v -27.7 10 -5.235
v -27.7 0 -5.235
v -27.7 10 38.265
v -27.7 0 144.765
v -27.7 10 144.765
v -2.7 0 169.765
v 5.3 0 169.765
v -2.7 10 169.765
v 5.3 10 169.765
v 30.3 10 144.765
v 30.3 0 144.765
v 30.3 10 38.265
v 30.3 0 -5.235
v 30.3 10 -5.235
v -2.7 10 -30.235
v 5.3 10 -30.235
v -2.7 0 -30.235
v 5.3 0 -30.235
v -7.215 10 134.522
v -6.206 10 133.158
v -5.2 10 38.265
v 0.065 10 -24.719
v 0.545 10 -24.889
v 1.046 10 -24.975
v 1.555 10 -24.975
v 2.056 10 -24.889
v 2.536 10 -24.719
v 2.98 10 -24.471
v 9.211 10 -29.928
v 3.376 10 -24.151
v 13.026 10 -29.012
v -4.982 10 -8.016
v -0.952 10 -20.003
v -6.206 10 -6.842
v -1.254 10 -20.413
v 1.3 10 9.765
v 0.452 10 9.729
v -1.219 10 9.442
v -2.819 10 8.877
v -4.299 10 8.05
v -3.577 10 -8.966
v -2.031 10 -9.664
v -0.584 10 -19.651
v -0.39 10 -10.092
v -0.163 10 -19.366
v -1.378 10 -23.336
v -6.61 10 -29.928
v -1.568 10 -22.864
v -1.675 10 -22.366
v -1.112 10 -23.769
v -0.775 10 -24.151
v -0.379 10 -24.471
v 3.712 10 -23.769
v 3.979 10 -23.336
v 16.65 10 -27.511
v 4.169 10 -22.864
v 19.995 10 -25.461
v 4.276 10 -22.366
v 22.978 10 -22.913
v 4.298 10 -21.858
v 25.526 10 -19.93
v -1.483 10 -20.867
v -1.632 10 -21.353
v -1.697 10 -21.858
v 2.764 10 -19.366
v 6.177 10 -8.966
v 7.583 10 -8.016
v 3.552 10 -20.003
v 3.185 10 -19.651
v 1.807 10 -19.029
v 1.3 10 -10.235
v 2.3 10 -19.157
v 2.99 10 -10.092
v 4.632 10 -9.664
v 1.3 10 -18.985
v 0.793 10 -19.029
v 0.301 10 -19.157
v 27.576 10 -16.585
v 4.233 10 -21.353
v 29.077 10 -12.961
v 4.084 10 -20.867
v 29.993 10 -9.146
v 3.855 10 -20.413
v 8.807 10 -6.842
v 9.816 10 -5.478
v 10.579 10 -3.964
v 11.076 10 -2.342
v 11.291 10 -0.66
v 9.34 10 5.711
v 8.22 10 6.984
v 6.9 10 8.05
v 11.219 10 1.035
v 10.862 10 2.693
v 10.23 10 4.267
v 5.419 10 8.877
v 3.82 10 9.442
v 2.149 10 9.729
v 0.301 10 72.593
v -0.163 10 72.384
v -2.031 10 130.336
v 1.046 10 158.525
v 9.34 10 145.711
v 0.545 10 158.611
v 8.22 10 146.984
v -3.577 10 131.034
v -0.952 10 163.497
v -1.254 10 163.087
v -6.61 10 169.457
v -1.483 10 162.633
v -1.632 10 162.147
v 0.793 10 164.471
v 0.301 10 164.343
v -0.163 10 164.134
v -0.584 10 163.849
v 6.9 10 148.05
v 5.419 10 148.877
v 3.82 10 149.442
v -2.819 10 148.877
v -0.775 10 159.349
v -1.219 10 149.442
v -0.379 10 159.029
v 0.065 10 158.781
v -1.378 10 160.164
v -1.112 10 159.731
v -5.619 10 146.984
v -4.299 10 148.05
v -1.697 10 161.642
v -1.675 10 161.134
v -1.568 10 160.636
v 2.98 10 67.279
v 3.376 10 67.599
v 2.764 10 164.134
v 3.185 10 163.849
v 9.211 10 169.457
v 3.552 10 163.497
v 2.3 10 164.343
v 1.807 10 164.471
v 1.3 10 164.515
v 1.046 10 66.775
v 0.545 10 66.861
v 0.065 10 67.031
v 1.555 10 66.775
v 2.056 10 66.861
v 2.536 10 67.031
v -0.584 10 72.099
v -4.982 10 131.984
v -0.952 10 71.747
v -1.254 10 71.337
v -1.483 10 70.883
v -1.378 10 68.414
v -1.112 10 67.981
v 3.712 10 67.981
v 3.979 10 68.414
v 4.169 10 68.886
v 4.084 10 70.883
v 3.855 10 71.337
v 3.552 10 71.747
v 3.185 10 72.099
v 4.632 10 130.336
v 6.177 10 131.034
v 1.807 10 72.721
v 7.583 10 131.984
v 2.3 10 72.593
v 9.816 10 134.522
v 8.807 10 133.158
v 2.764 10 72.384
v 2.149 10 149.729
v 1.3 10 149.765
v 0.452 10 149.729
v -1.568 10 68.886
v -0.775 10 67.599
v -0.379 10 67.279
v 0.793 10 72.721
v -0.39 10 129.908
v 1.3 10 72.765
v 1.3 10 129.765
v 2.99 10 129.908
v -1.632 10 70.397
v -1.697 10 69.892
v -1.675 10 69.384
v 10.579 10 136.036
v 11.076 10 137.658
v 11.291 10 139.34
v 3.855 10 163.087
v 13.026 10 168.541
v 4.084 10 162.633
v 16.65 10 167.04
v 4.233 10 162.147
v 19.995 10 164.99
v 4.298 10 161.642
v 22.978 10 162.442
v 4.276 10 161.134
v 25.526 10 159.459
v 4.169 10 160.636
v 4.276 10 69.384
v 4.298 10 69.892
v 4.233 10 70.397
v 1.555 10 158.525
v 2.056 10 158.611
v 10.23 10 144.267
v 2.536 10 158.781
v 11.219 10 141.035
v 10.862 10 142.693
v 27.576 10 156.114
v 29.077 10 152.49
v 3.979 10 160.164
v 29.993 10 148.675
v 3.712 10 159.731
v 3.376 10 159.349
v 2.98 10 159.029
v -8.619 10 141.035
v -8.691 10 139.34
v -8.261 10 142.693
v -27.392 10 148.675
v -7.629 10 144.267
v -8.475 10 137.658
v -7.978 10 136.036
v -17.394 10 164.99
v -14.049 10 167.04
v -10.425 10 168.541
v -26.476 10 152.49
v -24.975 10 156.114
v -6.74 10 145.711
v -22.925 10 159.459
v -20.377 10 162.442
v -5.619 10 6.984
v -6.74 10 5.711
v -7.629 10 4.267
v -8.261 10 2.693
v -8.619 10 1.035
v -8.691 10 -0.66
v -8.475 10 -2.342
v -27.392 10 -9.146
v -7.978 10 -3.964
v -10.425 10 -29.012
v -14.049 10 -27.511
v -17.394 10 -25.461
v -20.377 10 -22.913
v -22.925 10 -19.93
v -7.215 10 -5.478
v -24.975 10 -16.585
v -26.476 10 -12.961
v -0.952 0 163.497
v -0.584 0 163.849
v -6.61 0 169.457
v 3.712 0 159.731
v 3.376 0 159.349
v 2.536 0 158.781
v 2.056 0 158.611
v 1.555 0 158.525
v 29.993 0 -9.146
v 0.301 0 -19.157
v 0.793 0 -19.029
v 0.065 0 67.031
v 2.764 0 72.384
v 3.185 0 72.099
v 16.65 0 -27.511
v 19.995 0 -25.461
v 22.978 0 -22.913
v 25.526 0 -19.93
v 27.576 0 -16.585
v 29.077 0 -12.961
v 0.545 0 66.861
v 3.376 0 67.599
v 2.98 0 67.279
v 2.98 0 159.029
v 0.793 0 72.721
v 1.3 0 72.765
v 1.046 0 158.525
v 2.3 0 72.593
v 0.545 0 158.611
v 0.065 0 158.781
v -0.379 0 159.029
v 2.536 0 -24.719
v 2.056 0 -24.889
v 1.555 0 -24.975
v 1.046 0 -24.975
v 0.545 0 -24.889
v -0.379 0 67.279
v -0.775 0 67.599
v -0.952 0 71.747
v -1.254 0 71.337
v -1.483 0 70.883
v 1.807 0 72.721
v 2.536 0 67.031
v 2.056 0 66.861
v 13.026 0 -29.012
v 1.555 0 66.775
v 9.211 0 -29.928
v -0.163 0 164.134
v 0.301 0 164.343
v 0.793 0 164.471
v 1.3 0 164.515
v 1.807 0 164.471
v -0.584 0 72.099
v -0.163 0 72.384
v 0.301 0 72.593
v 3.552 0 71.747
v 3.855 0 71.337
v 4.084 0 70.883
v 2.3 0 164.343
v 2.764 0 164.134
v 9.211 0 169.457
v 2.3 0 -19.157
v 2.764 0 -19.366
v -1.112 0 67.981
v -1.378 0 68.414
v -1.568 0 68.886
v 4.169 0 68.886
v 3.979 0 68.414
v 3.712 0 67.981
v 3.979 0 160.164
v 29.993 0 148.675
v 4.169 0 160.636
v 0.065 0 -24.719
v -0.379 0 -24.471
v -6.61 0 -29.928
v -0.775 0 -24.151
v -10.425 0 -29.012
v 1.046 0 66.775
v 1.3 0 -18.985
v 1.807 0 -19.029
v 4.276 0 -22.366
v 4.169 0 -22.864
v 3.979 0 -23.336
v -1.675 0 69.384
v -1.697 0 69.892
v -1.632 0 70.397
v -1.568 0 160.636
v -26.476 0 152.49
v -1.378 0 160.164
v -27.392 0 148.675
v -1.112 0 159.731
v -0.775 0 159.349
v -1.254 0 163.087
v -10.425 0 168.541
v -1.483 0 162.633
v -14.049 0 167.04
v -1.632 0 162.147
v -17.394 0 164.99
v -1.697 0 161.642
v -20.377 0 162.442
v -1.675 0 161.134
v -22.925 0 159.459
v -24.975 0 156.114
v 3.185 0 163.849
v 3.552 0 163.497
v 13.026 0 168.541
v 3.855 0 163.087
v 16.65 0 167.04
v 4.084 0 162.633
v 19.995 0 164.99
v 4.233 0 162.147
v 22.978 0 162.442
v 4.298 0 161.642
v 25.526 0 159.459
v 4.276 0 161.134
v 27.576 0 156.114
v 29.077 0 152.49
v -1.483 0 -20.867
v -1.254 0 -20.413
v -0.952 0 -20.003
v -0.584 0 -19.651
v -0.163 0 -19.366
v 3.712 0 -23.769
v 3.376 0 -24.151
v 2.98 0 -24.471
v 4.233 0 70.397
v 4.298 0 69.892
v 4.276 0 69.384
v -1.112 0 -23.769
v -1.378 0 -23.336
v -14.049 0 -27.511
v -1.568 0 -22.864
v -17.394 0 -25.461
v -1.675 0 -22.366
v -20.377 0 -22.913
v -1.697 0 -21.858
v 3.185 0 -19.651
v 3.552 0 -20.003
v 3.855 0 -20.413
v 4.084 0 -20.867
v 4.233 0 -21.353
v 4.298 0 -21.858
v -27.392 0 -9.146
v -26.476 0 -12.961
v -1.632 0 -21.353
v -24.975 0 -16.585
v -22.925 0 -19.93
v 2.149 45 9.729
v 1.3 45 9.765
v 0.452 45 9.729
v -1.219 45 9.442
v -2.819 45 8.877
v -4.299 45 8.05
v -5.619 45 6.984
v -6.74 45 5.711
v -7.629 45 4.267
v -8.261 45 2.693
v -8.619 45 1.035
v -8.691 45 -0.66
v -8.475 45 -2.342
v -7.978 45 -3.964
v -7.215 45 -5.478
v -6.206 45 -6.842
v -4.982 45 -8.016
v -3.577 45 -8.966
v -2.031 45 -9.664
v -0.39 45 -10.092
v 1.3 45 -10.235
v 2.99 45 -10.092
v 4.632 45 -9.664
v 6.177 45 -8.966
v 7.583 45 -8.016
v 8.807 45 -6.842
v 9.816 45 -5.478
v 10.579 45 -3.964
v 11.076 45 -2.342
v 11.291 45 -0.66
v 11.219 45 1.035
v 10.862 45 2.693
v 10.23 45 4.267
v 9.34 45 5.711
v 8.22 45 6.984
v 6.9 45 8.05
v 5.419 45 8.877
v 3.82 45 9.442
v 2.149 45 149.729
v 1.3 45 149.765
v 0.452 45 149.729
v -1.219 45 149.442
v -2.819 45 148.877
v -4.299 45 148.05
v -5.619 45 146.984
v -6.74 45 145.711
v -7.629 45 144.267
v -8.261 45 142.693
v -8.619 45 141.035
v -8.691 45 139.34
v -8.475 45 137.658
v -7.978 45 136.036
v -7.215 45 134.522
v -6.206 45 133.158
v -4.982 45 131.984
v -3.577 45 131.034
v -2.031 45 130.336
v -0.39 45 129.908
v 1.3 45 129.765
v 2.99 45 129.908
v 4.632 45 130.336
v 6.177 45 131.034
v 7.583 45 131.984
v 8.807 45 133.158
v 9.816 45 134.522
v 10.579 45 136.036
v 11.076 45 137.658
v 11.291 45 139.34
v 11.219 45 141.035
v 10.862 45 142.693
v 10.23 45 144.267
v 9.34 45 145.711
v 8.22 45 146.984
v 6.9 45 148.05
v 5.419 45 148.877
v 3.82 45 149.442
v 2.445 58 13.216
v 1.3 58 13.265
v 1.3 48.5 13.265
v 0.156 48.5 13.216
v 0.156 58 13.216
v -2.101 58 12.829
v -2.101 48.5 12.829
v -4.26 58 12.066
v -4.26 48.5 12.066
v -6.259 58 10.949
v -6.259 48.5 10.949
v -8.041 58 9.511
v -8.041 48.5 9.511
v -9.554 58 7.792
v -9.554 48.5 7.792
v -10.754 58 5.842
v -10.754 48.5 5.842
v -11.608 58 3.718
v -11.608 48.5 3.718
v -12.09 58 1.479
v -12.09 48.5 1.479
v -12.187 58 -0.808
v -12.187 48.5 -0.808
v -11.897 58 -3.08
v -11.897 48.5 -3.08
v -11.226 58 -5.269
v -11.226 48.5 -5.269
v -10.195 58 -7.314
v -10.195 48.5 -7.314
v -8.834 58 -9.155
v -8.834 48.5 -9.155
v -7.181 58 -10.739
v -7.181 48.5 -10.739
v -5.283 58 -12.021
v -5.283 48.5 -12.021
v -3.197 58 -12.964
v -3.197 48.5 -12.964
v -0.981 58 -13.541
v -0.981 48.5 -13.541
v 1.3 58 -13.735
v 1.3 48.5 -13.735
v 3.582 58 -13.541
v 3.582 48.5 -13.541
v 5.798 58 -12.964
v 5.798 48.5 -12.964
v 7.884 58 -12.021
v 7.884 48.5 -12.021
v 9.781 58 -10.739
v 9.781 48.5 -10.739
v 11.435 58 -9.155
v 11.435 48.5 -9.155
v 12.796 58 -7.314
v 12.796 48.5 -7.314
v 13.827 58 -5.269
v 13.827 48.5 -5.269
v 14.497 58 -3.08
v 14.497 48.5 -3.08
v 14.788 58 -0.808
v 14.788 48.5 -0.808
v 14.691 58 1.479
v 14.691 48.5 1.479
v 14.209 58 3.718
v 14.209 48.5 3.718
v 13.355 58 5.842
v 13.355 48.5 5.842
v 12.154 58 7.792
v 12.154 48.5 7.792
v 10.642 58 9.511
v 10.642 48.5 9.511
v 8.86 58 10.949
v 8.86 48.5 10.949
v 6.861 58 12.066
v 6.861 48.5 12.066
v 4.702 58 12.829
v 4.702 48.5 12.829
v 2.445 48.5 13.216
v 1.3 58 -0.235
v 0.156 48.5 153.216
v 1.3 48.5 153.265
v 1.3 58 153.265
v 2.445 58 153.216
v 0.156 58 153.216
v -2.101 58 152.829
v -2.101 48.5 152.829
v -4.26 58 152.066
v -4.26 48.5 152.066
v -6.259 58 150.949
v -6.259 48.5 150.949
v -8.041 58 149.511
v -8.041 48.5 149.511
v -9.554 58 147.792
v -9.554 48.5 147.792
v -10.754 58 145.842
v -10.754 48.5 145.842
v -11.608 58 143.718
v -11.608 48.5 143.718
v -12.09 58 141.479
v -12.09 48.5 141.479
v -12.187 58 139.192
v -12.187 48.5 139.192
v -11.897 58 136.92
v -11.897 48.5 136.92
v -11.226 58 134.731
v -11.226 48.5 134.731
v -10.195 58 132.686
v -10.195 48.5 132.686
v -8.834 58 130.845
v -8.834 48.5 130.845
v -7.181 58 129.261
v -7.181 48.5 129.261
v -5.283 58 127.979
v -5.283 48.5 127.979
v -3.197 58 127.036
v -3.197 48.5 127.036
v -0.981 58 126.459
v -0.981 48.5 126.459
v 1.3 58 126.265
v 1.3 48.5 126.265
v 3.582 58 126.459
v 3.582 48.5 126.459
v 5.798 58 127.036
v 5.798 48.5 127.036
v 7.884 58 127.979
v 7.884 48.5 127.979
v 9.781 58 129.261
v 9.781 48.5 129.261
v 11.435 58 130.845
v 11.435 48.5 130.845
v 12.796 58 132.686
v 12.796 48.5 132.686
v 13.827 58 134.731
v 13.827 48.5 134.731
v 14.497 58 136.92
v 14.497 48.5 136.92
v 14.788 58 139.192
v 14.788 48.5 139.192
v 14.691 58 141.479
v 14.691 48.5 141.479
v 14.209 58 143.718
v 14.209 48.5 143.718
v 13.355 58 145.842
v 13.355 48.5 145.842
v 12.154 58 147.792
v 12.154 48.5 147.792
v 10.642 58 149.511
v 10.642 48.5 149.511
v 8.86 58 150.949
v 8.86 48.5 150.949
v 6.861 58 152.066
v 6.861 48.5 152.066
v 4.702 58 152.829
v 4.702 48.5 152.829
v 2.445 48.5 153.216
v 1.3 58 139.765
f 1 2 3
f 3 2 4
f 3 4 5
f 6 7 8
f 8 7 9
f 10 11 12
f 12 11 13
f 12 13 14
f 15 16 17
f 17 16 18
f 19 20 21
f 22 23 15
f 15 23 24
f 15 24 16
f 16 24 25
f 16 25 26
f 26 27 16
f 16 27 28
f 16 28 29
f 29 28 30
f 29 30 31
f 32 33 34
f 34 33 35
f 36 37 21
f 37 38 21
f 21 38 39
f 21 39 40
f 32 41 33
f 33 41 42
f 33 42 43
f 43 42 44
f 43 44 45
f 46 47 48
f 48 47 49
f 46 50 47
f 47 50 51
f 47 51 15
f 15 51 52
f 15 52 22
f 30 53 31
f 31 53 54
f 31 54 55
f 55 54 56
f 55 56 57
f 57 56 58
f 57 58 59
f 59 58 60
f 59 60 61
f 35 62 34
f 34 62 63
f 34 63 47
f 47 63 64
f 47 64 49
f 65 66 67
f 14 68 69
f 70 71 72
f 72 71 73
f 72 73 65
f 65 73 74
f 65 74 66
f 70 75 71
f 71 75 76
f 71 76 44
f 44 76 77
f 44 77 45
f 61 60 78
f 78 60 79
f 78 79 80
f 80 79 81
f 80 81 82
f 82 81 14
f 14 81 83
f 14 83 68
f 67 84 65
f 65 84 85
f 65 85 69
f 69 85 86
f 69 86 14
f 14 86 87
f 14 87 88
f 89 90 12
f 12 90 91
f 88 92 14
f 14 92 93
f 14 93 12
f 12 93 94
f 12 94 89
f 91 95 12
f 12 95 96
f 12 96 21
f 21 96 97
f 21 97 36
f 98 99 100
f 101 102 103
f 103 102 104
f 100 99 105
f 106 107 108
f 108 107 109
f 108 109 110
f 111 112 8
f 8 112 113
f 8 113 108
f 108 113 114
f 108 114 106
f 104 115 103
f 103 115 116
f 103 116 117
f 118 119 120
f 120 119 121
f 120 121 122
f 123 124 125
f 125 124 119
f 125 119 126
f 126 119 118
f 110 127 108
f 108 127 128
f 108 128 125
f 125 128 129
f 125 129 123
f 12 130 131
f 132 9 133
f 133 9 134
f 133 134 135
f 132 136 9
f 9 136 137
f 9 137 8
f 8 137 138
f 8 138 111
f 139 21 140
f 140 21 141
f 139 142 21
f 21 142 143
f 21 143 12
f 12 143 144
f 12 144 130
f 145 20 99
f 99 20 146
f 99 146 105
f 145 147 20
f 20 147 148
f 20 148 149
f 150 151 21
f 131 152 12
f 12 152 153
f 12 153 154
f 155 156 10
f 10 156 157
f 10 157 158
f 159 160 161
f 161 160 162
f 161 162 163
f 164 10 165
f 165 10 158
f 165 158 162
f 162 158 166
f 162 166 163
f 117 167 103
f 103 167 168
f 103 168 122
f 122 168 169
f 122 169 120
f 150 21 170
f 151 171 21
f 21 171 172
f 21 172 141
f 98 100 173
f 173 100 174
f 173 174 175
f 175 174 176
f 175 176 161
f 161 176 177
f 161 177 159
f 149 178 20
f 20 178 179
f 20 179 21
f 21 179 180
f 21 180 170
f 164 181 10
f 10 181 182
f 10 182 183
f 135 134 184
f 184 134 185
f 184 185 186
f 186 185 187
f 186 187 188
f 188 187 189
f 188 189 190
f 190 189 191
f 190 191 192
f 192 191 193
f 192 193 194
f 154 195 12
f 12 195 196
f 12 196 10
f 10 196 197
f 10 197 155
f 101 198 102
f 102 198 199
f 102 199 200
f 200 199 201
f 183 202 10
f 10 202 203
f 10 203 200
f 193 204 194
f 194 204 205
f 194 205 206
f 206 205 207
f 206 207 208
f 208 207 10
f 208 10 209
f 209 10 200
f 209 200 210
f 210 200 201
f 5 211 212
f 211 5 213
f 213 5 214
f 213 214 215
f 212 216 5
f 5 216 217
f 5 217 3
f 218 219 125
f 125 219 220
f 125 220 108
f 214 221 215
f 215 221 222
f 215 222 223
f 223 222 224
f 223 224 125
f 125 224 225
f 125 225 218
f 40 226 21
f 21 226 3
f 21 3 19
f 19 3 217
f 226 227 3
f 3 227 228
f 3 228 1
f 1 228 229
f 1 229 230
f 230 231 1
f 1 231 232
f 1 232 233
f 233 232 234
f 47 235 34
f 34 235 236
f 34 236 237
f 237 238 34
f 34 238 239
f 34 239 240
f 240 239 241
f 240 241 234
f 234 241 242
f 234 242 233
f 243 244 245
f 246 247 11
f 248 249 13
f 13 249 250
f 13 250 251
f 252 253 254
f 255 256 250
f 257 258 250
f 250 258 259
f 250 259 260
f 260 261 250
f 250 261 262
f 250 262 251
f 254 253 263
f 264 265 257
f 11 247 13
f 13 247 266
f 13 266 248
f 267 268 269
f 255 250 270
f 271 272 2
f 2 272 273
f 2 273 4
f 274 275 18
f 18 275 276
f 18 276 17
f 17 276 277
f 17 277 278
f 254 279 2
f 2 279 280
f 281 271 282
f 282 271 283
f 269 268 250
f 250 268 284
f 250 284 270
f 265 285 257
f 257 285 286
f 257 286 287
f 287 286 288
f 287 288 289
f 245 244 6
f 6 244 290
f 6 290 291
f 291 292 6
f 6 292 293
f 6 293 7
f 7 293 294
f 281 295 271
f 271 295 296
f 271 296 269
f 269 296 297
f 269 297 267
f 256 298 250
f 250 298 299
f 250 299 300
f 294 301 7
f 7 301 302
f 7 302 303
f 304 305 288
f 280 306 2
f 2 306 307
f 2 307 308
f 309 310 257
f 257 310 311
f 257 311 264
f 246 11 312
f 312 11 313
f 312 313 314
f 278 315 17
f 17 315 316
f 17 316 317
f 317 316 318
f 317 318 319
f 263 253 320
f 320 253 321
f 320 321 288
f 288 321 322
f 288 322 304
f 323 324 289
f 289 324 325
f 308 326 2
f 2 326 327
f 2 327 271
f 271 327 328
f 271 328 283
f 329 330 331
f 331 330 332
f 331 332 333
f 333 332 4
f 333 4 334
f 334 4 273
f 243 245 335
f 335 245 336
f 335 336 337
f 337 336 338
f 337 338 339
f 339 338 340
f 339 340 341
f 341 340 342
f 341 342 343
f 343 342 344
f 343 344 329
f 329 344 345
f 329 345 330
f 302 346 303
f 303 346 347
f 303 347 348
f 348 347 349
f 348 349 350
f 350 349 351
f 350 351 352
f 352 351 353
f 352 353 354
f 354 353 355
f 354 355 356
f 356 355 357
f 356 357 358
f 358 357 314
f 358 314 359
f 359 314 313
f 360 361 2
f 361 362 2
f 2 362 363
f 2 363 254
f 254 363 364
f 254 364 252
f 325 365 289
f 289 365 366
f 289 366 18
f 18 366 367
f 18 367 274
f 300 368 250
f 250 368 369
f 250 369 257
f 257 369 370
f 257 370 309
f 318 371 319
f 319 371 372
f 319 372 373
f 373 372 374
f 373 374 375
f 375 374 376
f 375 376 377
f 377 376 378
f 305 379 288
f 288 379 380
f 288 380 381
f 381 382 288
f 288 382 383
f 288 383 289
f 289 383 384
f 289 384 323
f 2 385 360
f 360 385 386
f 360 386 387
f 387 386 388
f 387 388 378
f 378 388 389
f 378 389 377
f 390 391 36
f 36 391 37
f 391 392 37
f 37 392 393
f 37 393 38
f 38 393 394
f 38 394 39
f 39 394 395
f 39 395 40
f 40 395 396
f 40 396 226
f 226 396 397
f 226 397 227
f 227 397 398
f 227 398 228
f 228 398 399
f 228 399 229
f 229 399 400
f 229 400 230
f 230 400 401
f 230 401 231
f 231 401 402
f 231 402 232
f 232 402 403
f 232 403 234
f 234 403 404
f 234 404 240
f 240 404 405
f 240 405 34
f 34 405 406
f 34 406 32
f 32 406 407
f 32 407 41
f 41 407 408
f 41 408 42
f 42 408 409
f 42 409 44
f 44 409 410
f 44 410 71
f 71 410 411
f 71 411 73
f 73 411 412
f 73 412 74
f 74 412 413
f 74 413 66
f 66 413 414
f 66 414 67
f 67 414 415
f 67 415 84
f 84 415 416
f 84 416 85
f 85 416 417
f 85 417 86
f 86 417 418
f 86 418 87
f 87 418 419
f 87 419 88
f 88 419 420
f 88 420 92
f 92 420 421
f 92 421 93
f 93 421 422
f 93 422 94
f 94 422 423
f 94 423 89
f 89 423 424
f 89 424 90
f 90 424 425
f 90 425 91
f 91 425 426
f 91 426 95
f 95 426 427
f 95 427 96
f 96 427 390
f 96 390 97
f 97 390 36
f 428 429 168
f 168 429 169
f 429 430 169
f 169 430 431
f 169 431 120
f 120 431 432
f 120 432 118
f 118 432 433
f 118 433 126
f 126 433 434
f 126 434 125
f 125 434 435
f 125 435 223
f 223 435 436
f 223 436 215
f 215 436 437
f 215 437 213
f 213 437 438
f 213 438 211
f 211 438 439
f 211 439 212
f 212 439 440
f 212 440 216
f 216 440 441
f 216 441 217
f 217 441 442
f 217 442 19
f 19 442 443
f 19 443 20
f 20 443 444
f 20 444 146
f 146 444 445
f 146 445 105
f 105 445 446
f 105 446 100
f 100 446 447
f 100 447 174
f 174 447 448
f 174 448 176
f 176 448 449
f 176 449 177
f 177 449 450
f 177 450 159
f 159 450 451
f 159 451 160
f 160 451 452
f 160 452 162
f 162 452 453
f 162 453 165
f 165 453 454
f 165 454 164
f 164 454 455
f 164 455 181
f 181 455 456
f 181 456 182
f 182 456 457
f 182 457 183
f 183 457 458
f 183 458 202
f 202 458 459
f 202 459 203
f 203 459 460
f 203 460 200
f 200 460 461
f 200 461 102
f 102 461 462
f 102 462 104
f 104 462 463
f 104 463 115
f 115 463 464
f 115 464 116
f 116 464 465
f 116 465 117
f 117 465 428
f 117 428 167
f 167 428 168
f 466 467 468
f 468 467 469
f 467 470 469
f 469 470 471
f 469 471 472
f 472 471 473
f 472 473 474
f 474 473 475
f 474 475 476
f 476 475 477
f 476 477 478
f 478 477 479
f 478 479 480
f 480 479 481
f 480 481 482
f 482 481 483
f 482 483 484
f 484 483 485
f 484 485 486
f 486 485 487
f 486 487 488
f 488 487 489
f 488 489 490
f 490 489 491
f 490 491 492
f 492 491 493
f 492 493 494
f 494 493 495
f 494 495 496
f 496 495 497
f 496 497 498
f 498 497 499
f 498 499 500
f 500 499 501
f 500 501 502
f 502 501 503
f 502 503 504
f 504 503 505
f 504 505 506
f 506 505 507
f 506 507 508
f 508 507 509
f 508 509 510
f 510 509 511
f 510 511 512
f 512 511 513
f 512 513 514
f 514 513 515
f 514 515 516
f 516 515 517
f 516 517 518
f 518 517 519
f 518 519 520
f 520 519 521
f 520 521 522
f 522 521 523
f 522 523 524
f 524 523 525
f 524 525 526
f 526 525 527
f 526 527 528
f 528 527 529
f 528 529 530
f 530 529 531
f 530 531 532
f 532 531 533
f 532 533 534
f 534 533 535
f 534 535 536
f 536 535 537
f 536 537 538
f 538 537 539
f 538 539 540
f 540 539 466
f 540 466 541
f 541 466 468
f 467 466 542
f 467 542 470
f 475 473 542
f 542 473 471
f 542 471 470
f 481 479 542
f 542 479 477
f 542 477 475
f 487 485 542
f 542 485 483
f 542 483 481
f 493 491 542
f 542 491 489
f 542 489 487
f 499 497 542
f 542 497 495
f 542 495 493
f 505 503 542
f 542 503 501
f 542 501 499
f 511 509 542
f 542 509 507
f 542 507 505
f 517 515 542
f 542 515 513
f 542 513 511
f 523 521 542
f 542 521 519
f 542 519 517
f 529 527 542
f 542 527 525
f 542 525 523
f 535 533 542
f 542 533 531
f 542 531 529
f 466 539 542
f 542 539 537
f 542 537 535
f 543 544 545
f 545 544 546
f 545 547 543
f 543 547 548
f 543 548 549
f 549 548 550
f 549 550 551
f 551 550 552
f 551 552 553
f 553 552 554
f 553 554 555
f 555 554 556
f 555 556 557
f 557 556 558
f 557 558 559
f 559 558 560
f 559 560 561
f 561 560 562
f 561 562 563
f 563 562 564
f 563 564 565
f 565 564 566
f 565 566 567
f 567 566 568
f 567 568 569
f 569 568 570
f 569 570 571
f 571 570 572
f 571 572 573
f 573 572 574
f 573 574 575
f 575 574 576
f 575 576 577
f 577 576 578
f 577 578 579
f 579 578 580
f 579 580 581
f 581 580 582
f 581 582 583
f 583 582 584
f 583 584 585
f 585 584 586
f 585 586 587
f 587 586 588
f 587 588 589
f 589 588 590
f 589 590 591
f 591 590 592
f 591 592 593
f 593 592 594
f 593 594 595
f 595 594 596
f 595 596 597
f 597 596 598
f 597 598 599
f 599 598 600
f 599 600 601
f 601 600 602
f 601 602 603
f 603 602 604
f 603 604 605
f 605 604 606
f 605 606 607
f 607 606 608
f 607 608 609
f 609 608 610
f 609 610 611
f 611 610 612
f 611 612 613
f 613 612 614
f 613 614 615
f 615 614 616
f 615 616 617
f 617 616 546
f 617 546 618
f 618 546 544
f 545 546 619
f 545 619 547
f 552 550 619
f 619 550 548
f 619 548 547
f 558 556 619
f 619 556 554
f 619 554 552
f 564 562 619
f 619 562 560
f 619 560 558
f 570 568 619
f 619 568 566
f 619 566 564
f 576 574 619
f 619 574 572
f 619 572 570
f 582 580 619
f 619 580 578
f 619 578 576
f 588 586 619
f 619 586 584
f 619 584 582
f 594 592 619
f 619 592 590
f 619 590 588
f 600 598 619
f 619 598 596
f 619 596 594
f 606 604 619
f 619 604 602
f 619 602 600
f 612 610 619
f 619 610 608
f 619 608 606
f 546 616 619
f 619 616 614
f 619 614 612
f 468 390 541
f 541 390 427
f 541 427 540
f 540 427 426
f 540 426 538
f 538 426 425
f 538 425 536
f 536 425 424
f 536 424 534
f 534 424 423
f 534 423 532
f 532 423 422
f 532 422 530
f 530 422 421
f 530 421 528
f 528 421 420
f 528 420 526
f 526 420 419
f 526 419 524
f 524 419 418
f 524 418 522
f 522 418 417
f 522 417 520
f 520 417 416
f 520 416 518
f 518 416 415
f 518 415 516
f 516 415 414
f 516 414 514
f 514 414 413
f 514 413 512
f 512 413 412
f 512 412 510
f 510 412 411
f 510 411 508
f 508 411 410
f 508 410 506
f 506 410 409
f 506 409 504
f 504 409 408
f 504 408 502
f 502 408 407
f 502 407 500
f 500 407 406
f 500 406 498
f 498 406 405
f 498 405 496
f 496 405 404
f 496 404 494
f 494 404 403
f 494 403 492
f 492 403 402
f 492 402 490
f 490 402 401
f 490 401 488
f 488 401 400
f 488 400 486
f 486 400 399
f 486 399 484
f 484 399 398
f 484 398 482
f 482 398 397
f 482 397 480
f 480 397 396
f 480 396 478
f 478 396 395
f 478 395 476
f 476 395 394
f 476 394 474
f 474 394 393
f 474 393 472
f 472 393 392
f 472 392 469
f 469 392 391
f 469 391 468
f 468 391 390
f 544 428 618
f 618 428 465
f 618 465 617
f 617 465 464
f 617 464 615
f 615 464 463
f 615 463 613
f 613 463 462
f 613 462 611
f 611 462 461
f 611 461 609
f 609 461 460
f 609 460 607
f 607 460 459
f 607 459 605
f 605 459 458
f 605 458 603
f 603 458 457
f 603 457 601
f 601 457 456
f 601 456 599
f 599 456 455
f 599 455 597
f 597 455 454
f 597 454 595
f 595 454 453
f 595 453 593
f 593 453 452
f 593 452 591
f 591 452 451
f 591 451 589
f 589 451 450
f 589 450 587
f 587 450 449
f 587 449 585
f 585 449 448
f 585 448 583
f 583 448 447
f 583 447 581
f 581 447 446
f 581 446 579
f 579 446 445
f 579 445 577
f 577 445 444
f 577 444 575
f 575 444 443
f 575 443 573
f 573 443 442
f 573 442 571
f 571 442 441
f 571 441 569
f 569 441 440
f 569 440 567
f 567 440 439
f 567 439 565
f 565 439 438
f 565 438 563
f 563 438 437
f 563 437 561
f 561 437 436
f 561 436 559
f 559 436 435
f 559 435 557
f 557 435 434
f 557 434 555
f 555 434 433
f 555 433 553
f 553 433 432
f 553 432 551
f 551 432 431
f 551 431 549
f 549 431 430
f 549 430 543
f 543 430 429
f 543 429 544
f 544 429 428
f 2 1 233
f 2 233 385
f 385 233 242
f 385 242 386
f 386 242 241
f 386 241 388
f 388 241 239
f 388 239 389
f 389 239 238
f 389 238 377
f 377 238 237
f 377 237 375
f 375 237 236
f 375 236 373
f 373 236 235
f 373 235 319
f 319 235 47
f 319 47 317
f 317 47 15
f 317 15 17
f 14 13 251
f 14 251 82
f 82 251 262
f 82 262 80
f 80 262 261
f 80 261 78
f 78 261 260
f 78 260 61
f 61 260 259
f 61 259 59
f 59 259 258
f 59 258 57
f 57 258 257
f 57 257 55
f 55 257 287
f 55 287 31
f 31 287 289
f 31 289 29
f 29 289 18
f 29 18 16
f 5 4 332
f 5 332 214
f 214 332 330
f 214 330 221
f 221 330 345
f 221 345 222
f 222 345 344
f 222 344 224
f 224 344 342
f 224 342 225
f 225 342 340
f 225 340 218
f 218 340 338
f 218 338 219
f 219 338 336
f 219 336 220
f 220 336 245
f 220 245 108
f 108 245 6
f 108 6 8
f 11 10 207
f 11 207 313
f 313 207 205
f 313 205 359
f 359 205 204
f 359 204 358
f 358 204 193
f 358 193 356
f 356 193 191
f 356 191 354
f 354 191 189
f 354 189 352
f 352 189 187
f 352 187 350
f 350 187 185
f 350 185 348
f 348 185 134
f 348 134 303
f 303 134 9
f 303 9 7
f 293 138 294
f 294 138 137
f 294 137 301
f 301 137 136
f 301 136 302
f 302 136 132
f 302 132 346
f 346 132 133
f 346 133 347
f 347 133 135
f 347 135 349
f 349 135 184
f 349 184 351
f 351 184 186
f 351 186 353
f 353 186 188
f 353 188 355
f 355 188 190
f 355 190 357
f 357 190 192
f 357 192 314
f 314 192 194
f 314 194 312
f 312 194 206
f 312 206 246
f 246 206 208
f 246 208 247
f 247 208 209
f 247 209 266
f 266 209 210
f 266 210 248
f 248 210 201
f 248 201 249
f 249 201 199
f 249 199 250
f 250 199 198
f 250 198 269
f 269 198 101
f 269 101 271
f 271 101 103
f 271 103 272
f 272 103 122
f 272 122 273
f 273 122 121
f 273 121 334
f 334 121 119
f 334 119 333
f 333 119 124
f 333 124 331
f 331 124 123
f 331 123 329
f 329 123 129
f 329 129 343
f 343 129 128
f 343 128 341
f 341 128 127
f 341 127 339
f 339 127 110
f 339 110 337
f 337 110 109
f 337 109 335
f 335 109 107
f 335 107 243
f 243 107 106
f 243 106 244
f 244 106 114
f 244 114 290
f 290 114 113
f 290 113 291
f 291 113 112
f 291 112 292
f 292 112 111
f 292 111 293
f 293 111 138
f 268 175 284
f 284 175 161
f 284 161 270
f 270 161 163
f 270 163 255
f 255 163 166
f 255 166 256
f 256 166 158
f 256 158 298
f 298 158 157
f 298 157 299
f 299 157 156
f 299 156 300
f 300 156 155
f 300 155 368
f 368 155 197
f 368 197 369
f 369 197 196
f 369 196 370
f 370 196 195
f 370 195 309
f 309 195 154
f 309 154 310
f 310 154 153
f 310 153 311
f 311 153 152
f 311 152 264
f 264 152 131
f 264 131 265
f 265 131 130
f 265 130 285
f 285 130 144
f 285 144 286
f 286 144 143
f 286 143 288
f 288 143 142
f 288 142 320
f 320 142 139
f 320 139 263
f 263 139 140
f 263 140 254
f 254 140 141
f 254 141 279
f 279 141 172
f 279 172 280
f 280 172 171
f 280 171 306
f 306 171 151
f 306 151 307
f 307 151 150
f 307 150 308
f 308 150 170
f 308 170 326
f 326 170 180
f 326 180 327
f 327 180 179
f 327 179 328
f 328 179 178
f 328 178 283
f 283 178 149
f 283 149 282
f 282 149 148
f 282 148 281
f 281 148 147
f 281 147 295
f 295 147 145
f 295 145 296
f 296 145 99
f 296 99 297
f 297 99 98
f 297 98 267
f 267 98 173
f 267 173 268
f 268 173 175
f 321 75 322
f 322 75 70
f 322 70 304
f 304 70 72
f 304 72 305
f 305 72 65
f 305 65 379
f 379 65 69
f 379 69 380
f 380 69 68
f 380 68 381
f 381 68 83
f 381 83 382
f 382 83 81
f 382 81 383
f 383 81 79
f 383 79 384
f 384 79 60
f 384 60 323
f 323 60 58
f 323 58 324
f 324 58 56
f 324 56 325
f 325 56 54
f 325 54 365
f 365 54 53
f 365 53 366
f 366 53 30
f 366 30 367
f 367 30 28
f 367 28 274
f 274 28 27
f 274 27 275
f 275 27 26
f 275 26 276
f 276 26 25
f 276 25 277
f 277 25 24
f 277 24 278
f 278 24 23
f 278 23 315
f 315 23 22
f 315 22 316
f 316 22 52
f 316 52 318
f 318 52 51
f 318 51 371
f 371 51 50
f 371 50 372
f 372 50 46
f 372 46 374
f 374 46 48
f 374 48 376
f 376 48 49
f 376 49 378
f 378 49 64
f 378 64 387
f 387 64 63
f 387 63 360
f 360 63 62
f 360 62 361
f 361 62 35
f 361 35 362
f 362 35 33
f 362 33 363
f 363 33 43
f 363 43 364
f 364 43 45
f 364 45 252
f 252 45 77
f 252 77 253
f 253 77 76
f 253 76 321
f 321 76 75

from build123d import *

# Parameters (mm, degrees)
BOSS_EXTRUDE1_DEPTH = 10
BOSS_EXTRUDE2_DEPTH = 50
SKETCH3_R           = 13.5
BOSS_EXTRUDE3_DEPTH = 8
CHAMFER2_SIZE       = 5
FILLET1_R           = 25
CUT_EXTRUDE1_DEPTH  = 10


with BuildPart() as part:
    # Sketch1 → Boss-Extrude1 (new body)
    with BuildSketch(Plane(origin=(0, 0, 0), x_dir=(1, 0, 0), z_dir=(0, 1, 0))):
        with BuildLine():
            Line((30.30044843, 30.235426009), (1.30044843, 30.235426009))
            Line((1.30044843, 30.235426009), (1.30044843, 10.235426009))
            ThreePointArc((1.30044843, 10.235426009), (8.371516242, 7.306493821), (11.30044843, 0.235426009))
            ThreePointArc((11.30044843, 0.235426009), (8.371516242, -6.835641803), (1.30044843, -9.764573991))
            Line((1.30044843, -9.764573991), (1.30044843, -129.764573991))
            ThreePointArc((1.30044843, -129.764573991), (8.371516242, -132.693506179), (11.30044843, -139.764573991))
            ThreePointArc((11.30044843, -139.764573991), (8.371516242, -146.835641803), (1.30044843, -149.764573991))
            Line((1.30044843, -149.764573991), (1.30044843, -169.764573991))
            Line((1.30044843, -169.764573991), (30.30044843, -169.764573991))
            Line((30.30044843, -169.764573991), (30.30044843, 30.235426009))
        make_face()
        with BuildLine():
            Line((1.30044843, 10.235426009), (1.30044843, 30.235426009))
            Line((1.30044843, 30.235426009), (-27.69955157, 30.235426009))
            Line((-27.69955157, 30.235426009), (-27.69955157, -169.764573991))
            Line((-27.69955157, -169.764573991), (1.30044843, -169.764573991))
            Line((1.30044843, -169.764573991), (1.30044843, -149.764573991))
            ThreePointArc((1.30044843, -149.764573991), (-8.69955157, -139.764573991), (1.30044843, -129.764573991))
            Line((1.30044843, -129.764573991), (1.30044843, -9.764573991))
            ThreePointArc((1.30044843, -9.764573991), (-8.69955157, 0.235426009), (1.30044843, 10.235426009))
        make_face()
        with BuildLine():
            ThreePointArc((11.30044843, 0.235426009), (8.371516242, 7.306493821), (1.30044843, 10.235426009))
            Line((1.30044843, 10.235426009), (1.30044843, -9.764573991))
            ThreePointArc((1.30044843, -9.764573991), (8.371516242, -6.835641803), (11.30044843, 0.235426009))
        make_face()
        with BuildLine():
            Line((1.30044843, -9.764573991), (1.30044843, 10.235426009))
            ThreePointArc((1.30044843, 10.235426009), (-8.69955157, 0.235426009), (1.30044843, -9.764573991))
        make_face()
        with BuildLine():
            ThreePointArc((11.30044843, -139.764573991), (8.371516242, -132.693506179), (1.30044843, -129.764573991))
            Line((1.30044843, -129.764573991), (1.30044843, -149.764573991))
            ThreePointArc((1.30044843, -149.764573991), (8.371516242, -146.835641803), (11.30044843, -139.764573991))
        make_face()
        with BuildLine():
            Line((1.30044843, -149.764573991), (1.30044843, -129.764573991))
            ThreePointArc((1.30044843, -129.764573991), (-8.69955157, -139.764573991), (1.30044843, -149.764573991))
        make_face()
    extrude(amount=BOSS_EXTRUDE1_DEPTH)

    # Sketch1<3> → Boss-Extrude2 (add)
    with BuildSketch(Plane(origin=(0, 0, 0), x_dir=(1, 0, 0), z_dir=(0, 1, 0))):
        with BuildLine():
            ThreePointArc((11.30044843, 0.235426009), (8.371516242, 7.306493821), (1.30044843, 10.235426009))
            Line((1.30044843, 10.235426009), (1.30044843, -9.764573991))
            ThreePointArc((1.30044843, -9.764573991), (8.371516242, -6.835641803), (11.30044843, 0.235426009))
        make_face()
        with BuildLine():
            Line((1.30044843, -9.764573991), (1.30044843, 10.235426009))
            ThreePointArc((1.30044843, 10.235426009), (-8.69955157, 0.235426009), (1.30044843, -9.764573991))
        make_face()
        with BuildLine():
            ThreePointArc((11.30044843, -139.764573991), (8.371516242, -132.693506179), (1.30044843, -129.764573991))
            Line((1.30044843, -129.764573991), (1.30044843, -149.764573991))
            ThreePointArc((1.30044843, -149.764573991), (8.371516242, -146.835641803), (11.30044843, -139.764573991))
        make_face()
        with BuildLine():
            Line((1.30044843, -149.764573991), (1.30044843, -129.764573991))
            ThreePointArc((1.30044843, -129.764573991), (-8.69955157, -139.764573991), (1.30044843, -149.764573991))
        make_face()
    extrude(amount=BOSS_EXTRUDE2_DEPTH)

    # Sketch3 → Boss-Extrude3 (add)
    with BuildSketch(Plane(origin=(0, 50, 0), x_dir=(1, 0, 0), z_dir=(0, 1, 0))):
        with Locations(Location((1.30044843, -139.764573991, 0), (0, 0, 270))):
            Circle(SKETCH3_R)
        with Locations(Location((1.30044843, 0.235426009, 0), (0, 0, 270))):
            Circle(SKETCH3_R)
    extrude(amount=BOSS_EXTRUDE3_DEPTH)

    # Chamfer2
    # the kernel refuses this chamfer: 5 mm, written as the material it adds along each edge
    with BuildSketch(Plane(origin=(1.30044843, 50, -0.235426009), x_dir=(0, 0, -1), z_dir=(-1, 0, 0))) as chamfer2_piece_1_section:
        Polygon((10, CHAMFER2_SIZE), (10 + CHAMFER2_SIZE, 0), (10, 0), align=None)
    chamfer2_piece_1 = revolve(axis=Axis((1.30044843, 50, -0.235426009), (0, -1, 0)), mode=Mode.PRIVATE)
    chamfer2_piece_1 = chamfer2_piece_1 & Plane(origin=(1.30044843, 46.747090697, -0.235426009), x_dir=(0, 0, 1), z_dir=(0, -1, 0)) * Cylinder(13.5, 61, mode=Mode.PRIVATE)
    add(chamfer2_piece_1)
    with BuildSketch(Plane(origin=(1.30044843, 50, 139.764573991), x_dir=(0, 0, -1), z_dir=(-1, 0, 0))) as chamfer2_piece_2_section:
        Polygon((10 + CHAMFER2_SIZE, 0), (10, CHAMFER2_SIZE), (10, 0), align=None)
    chamfer2_piece_2 = revolve(axis=Axis((1.30044843, 50, 139.764573991), (0, -1, 0)), mode=Mode.PRIVATE)
    chamfer2_piece_2 = chamfer2_piece_2 & Plane(origin=(1.30044843, 46.747090697, 139.764573991), x_dir=(0, 0, 1), z_dir=(0, -1, 0)) * Cylinder(13.5, 60, mode=Mode.PRIVATE)
    add(chamfer2_piece_2)

    # Fillet1
    fillet1_edges = [part.edges().sort_by_distance(p)[0] for p in [
        (-27.69955157, 5, -30.235426009),
        (30.30044843, 5, -30.235426009),
        (30.30044843, 5, 169.764573991),
        (-27.69955157, 5, 169.764573991),
    ]]
    fillet(fillet1_edges, radius=FILLET1_R)

    # Sketch4 → Cut-Extrude1 (cut)
    with BuildSketch(Plane(origin=(0, 10, 0), x_dir=(1, 0, 0), z_dir=(0, 1, 0))):
        with BuildLine():
            ThreePointArc((4.30044843, 21.985426009), (3.421768774, 24.106746353), (1.30044843, 24.985426009))
            Line((1.30044843, 24.985426009), (1.30044843, 18.985426009))
            ThreePointArc((1.30044843, 18.985426009), (3.421768774, 19.864105665), (4.30044843, 21.985426009))
        make_face()
        with BuildLine():
            Line((1.30044843, 18.985426009), (1.30044843, 24.985426009))
            ThreePointArc((1.30044843, 24.985426009), (-1.69955157, 21.985426009), (1.30044843, 18.985426009))
        make_face()
        with BuildLine():
            ThreePointArc((4.30044843, -69.764573991), (3.421768774, -67.643253647), (1.30044843, -66.764573991))
            Line((1.30044843, -66.764573991), (1.30044843, -72.764573991))
            ThreePointArc((1.30044843, -72.764573991), (3.421768774, -71.885894335), (4.30044843, -69.764573991))
        make_face()
        with BuildLine():
            Line((1.30044843, -72.764573991), (1.30044843, -66.764573991))
            ThreePointArc((1.30044843, -66.764573991), (-1.69955157, -69.764573991), (1.30044843, -72.764573991))
        make_face()
        with BuildLine():
            ThreePointArc((4.30044843, -161.514573991), (3.421768774, -159.393253647), (1.30044843, -158.514573991))
            Line((1.30044843, -158.514573991), (1.30044843, -164.514573991))
            ThreePointArc((1.30044843, -164.514573991), (3.421768774, -163.635894335), (4.30044843, -161.514573991))
        make_face()
        with BuildLine():
            Line((1.30044843, -164.514573991), (1.30044843, -158.514573991))
            ThreePointArc((1.30044843, -158.514573991), (-1.69955157, -161.514573991), (1.30044843, -164.514573991))
        make_face()
    extrude(amount=-CUT_EXTRUDE1_DEPTH, mode=Mode.SUBTRACT)


solid = part.part
